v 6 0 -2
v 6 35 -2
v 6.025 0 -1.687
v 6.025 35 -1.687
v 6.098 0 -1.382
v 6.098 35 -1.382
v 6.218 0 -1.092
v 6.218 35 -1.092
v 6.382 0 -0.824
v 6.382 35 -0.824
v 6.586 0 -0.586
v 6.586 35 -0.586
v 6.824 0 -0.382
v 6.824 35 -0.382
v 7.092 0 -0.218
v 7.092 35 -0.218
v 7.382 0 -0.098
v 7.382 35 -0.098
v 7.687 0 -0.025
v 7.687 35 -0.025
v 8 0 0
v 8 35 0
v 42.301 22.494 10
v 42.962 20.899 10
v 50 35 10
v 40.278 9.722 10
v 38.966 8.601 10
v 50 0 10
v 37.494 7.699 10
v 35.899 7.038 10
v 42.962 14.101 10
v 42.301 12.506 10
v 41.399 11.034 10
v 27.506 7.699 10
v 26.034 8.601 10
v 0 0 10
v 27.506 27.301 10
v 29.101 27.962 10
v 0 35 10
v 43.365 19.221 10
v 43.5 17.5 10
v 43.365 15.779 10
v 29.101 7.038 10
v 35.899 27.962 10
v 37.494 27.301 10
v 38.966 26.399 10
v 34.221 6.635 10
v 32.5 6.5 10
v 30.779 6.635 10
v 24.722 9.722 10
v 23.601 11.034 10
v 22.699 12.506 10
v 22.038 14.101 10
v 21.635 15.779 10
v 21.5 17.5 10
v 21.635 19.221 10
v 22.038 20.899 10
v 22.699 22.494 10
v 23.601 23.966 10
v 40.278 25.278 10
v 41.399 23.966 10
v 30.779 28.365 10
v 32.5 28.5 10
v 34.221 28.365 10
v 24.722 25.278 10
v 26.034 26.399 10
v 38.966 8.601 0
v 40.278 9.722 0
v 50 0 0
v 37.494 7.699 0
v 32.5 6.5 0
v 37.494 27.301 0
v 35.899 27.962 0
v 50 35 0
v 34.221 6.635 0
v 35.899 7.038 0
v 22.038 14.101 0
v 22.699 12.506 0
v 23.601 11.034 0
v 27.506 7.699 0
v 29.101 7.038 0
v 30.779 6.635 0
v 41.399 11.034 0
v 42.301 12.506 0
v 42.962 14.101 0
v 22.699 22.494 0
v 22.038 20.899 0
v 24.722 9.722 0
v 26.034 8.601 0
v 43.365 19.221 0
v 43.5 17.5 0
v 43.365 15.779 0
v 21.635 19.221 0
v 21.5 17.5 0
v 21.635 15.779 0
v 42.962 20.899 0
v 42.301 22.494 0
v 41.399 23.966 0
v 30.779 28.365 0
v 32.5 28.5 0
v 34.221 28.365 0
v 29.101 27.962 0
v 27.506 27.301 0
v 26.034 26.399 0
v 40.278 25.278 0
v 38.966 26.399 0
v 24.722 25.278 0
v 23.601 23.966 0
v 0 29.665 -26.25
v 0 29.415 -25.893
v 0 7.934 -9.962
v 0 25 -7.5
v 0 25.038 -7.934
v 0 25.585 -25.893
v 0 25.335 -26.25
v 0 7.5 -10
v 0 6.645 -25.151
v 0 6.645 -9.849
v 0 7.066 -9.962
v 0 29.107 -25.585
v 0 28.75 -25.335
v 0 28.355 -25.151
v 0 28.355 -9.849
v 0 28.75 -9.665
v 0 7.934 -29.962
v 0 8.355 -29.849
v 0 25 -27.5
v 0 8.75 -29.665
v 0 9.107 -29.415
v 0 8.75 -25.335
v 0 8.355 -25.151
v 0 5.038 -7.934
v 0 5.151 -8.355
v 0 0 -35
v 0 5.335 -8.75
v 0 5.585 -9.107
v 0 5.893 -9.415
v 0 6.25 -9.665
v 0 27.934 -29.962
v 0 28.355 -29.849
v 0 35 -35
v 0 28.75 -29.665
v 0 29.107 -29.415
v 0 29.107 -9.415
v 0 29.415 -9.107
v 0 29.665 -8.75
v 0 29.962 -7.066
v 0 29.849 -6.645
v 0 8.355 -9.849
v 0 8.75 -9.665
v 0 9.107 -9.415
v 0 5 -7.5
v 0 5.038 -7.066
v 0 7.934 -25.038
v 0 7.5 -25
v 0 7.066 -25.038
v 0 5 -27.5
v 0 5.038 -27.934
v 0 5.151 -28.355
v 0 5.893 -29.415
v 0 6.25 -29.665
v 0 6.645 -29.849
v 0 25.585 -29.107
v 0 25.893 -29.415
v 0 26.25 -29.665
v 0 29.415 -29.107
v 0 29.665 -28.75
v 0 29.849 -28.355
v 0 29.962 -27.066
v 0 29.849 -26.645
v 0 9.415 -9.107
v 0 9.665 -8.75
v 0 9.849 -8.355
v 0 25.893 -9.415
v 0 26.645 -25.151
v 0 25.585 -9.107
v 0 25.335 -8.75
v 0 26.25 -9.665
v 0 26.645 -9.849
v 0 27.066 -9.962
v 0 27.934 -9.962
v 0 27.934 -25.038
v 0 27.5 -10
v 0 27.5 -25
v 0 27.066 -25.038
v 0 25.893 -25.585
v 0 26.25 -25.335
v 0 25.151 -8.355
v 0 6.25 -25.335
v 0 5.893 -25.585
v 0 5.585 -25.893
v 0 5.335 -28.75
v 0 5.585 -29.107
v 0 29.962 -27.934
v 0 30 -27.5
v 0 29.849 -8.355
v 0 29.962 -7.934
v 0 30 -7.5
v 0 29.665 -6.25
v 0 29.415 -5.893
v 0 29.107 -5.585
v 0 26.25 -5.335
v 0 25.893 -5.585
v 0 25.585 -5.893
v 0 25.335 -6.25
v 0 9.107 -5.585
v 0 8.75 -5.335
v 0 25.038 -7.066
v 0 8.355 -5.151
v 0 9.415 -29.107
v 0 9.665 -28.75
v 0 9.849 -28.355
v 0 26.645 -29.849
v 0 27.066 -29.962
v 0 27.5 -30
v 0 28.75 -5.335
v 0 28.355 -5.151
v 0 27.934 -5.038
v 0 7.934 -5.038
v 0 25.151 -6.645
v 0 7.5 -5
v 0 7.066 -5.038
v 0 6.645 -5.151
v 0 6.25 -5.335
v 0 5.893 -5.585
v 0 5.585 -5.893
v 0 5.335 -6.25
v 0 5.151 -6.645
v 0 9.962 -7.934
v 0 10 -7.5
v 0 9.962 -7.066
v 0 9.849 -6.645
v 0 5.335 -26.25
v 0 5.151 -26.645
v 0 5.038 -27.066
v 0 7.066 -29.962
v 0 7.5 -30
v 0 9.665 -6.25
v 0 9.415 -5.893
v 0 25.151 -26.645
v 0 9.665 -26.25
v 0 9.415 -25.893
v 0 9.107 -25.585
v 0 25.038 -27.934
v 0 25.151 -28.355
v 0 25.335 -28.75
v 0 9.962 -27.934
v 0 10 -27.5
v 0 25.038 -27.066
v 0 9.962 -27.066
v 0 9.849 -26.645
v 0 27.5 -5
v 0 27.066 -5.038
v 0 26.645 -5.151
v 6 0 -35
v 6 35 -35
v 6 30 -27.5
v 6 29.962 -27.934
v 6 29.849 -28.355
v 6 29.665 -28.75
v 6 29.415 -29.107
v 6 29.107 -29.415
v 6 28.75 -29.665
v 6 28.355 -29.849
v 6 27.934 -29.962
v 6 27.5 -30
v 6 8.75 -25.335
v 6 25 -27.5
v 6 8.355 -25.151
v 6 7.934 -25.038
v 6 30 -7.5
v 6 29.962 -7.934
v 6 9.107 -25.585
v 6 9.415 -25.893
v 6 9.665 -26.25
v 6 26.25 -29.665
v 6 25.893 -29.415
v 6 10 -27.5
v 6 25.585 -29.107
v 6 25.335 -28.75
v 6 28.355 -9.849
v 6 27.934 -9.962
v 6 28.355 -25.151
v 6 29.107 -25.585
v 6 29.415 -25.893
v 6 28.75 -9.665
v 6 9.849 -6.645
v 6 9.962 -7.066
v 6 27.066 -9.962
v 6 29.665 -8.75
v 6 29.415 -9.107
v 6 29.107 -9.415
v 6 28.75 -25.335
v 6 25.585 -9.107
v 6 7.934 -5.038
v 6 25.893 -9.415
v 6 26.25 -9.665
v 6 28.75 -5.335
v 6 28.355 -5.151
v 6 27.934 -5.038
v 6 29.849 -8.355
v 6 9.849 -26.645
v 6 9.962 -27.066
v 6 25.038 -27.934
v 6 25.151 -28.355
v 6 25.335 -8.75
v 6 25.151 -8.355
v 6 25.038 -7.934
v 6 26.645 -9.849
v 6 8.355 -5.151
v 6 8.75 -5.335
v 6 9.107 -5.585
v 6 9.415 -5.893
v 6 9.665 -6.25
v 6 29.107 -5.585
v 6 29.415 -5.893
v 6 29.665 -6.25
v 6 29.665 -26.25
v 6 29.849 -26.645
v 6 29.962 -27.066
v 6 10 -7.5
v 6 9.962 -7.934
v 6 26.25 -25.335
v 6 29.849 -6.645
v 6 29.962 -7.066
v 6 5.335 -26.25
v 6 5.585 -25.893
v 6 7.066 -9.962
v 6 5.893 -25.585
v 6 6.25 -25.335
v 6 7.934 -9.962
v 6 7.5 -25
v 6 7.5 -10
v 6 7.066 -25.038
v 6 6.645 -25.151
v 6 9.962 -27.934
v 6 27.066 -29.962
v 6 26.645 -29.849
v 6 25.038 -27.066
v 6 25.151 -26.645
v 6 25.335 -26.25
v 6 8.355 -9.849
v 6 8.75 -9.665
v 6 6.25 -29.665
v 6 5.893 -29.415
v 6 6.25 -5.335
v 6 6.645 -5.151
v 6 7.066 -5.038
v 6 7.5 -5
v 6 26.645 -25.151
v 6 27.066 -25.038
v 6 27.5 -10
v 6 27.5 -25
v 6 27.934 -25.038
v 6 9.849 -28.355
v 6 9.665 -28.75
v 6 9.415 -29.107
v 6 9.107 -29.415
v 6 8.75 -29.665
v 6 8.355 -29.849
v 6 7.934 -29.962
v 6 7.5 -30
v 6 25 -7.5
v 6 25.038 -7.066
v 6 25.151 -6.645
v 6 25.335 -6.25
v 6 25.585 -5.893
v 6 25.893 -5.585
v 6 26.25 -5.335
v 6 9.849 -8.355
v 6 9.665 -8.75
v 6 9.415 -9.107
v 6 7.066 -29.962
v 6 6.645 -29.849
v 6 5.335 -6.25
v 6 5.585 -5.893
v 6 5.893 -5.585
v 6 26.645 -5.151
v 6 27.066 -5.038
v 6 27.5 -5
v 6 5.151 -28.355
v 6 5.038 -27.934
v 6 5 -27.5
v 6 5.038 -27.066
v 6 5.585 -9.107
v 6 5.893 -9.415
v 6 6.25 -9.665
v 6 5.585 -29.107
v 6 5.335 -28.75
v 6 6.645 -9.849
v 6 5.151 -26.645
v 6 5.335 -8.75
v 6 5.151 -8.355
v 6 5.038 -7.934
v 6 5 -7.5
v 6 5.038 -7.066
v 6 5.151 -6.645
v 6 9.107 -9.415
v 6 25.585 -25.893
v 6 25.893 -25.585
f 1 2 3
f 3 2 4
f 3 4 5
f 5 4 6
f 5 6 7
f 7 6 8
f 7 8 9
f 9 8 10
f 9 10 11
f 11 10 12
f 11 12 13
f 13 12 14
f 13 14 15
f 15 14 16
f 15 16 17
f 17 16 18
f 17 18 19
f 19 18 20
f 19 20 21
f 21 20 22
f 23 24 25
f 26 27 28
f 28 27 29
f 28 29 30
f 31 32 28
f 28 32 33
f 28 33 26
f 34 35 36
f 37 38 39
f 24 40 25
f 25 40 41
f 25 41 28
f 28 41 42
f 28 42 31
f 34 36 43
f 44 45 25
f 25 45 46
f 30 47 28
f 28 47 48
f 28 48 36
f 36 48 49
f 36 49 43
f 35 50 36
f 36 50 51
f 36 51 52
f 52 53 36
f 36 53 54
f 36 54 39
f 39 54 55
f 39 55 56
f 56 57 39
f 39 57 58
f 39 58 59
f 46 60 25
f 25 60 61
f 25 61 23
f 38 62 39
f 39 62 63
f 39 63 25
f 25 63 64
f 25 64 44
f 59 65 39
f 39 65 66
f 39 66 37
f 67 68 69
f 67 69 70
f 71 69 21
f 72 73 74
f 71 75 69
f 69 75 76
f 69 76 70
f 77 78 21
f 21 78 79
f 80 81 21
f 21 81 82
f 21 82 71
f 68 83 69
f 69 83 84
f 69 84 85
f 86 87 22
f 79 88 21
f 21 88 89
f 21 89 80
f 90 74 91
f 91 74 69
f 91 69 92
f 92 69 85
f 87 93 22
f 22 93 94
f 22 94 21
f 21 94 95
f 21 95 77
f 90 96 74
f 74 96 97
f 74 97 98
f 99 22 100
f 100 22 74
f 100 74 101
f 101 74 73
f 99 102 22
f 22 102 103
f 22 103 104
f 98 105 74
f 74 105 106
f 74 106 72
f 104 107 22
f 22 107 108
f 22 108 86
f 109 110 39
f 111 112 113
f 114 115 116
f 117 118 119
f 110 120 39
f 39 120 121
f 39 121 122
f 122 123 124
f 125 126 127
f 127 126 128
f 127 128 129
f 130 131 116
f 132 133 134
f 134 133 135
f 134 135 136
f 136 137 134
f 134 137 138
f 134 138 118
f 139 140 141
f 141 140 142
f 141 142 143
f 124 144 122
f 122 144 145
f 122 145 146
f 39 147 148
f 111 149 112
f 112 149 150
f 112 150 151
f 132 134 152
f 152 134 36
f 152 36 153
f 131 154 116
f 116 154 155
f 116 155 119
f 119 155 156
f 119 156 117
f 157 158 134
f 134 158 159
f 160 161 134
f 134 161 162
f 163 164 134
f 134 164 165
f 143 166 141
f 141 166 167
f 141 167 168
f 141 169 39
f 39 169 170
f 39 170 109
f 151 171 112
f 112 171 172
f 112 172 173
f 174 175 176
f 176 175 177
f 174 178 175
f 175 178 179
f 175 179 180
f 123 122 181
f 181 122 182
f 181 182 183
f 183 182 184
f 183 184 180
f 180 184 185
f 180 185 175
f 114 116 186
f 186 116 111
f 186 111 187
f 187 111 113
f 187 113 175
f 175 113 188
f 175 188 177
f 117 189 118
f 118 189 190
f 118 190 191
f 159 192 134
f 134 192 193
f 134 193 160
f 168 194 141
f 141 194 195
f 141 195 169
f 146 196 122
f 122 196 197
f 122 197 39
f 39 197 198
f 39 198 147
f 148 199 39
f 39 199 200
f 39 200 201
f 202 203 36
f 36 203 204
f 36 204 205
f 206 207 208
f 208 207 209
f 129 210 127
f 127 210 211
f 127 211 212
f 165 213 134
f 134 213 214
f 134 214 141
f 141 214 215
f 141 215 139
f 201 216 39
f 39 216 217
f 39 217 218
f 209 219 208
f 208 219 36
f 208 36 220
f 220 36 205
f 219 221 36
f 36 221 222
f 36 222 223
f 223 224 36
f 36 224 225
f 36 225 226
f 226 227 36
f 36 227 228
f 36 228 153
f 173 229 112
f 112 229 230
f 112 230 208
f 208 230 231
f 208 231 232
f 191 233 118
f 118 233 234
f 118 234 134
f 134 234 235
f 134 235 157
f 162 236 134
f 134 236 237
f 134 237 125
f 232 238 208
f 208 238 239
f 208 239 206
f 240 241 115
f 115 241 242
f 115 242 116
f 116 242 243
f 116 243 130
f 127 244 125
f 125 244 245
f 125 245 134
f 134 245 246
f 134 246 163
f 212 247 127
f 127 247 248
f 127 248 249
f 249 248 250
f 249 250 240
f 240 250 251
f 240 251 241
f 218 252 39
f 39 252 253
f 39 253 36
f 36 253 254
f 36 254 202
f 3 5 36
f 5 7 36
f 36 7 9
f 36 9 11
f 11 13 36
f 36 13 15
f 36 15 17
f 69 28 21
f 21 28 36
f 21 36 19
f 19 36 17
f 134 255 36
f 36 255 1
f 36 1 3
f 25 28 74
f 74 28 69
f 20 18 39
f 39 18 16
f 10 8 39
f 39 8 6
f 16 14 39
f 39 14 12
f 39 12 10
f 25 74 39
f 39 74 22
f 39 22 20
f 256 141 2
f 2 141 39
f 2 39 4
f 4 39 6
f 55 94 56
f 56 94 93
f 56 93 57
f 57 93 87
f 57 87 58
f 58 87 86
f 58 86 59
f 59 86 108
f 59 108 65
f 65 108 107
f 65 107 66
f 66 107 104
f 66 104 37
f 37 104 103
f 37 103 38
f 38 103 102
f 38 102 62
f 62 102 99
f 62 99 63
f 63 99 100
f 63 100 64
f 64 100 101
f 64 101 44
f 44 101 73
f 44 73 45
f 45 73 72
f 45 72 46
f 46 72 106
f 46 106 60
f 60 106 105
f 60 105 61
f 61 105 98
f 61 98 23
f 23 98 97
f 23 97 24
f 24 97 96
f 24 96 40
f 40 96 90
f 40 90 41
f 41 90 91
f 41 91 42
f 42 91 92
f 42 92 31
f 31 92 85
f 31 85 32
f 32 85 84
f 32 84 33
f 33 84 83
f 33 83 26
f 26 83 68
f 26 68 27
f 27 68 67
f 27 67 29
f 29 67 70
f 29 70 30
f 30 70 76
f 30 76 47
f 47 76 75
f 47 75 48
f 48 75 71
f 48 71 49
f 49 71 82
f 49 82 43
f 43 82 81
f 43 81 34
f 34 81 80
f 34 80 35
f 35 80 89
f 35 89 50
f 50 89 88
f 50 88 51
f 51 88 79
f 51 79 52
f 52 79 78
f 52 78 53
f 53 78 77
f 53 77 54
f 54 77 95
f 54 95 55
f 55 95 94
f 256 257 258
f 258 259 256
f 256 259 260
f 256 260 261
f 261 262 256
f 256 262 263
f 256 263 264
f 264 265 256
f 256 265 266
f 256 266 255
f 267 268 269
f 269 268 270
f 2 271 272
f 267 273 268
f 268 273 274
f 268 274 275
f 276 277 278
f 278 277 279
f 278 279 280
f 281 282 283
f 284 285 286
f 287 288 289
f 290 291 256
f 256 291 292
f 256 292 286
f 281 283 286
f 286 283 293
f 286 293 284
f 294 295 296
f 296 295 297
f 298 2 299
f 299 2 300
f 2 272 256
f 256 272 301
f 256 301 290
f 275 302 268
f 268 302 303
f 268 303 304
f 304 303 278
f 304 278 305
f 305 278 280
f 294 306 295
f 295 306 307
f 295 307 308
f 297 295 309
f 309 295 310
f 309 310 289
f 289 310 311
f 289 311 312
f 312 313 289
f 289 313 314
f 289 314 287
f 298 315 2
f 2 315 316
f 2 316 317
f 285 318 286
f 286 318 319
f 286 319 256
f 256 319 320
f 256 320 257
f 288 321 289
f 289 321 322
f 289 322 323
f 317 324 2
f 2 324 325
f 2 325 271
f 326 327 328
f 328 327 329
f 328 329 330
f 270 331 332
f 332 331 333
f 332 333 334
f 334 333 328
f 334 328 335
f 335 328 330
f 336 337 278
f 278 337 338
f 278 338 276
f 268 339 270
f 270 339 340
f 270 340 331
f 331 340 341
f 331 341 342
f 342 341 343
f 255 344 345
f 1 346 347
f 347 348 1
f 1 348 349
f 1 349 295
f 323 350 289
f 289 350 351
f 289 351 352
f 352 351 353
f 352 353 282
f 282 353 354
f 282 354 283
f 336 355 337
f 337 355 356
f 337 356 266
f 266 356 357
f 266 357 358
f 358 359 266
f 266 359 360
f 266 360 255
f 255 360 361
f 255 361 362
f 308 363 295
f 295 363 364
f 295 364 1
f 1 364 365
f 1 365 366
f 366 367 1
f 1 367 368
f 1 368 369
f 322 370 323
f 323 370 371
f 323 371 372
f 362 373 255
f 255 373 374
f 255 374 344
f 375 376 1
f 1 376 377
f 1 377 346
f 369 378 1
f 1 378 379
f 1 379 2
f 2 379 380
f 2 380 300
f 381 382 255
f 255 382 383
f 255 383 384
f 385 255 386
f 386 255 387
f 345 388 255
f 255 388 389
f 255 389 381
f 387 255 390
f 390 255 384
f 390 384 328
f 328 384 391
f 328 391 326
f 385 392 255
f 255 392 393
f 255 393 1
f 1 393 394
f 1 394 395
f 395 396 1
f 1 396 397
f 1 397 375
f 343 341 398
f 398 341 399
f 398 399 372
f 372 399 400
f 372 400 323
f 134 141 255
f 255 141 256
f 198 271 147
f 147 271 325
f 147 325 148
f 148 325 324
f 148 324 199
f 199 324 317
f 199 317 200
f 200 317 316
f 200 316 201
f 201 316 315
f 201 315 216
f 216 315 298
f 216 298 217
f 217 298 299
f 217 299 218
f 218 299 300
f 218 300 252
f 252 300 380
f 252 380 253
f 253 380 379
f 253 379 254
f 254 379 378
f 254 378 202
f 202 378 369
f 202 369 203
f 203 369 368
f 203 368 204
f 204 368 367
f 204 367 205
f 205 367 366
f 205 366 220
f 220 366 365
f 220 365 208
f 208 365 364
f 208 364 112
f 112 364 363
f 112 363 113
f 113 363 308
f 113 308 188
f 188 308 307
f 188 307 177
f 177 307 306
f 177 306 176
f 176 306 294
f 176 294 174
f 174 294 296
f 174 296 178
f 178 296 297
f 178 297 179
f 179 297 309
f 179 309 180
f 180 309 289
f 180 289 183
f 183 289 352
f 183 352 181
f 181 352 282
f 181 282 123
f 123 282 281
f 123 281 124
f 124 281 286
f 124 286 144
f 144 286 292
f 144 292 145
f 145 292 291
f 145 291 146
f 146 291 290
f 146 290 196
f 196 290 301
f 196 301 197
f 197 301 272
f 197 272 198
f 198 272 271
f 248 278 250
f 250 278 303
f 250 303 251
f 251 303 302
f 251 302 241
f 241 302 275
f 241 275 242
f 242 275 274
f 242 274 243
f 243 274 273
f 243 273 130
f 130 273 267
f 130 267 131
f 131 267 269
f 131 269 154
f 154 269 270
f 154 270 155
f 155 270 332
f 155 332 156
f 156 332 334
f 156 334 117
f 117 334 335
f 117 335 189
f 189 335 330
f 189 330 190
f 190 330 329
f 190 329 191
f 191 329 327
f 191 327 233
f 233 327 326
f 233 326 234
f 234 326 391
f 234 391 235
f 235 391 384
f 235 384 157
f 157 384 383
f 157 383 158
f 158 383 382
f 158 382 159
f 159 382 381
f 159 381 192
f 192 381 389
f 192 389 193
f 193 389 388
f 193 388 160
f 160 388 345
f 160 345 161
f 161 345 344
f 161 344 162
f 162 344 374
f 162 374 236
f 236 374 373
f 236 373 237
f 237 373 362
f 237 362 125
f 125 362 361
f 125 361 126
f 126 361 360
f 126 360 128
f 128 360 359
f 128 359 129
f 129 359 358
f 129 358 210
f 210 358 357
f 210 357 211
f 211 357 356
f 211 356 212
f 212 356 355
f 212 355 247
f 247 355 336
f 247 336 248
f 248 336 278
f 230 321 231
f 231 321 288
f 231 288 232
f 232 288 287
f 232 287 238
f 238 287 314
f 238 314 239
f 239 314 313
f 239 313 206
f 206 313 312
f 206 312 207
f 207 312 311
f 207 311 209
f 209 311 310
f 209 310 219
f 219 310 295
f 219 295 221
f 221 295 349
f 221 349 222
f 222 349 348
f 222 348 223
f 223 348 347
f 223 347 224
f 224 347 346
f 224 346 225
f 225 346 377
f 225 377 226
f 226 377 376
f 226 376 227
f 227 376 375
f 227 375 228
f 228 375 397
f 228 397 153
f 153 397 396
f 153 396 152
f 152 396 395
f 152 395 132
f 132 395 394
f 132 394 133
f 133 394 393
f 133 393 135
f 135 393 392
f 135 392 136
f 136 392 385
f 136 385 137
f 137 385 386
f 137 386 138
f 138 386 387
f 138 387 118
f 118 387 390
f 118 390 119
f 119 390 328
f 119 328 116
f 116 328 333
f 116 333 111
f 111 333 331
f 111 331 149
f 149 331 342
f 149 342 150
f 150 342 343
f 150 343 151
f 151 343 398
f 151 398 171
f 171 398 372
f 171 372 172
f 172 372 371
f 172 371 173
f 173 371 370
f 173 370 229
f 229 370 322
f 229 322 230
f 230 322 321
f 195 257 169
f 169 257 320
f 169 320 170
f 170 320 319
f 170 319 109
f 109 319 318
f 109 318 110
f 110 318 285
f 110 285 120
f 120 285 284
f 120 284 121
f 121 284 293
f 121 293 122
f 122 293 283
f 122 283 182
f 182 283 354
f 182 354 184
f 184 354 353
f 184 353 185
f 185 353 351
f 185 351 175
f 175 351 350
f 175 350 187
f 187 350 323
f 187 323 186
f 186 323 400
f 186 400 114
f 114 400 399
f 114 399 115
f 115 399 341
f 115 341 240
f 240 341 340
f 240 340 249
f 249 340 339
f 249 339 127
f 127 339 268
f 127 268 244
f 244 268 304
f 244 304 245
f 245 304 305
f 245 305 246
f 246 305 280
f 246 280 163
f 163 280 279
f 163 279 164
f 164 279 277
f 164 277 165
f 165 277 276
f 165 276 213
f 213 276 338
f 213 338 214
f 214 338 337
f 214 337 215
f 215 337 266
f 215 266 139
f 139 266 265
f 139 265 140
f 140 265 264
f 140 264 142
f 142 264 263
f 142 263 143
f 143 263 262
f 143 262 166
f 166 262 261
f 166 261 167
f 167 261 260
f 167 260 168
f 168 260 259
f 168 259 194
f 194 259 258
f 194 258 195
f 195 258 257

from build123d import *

# Parameters (mm, degrees)
SKETCH1_W           = 50
SKETCH1_H           = 35
SKETCH1_R           = 11
BOSS_EXTRUDE3_DEPTH = 10
BOSS_EXTRUDE6_DEPTH = 35
SKETCH9_R           = 2.5
CUT_EXTRUDE1_DEPTH  = 10
FILLET1_R           = 2


with BuildPart() as part:
    # Sketch1 → Boss-Extrude3 (new body)
    with BuildSketch(Plane.XY):
        with Locations((25, 17.5)):
            Rectangle(SKETCH1_W, SKETCH1_H)
        with Locations((32.5, 17.5)):
            Circle(SKETCH1_R, mode=Mode.SUBTRACT)
    extrude(amount=BOSS_EXTRUDE3_DEPTH)

    # Sketch8 → Boss-Extrude6 (add)
    with BuildSketch(Plane(origin=(0, 0, 0), x_dir=(-1, 0, 0), z_dir=(0, 0, -1))):
        Polygon((-6, 10.000000197), (-6, 0), (0, 0), (0, 10.000000197), (0, 25), (0, 35), (-6, 35), (-6, 25), align=None)
    extrude(amount=BOSS_EXTRUDE6_DEPTH)

    # Sketch9 → Cut-Extrude1 (cut)
    with BuildSketch(Plane(origin=(6, 0, 0), x_dir=(0, 0, -1), z_dir=(1, 0, 0))):
        with Locations((7.5, 27.5)):
            Circle(SKETCH9_R)
        with Locations((27.5, 27.5)):
            Circle(SKETCH9_R)
        with Locations((7.5, 7.5)):
            Circle(SKETCH9_R)
        with Locations((27.5, 7.5)):
            Circle(SKETCH9_R)
    extrude(amount=-CUT_EXTRUDE1_DEPTH, mode=Mode.SUBTRACT)

    # Fillet1
    fillet1_edges = [part.edges().sort_by_distance(p)[0] for p in [
        (6, 17.5, 0),
    ]]
    fillet(fillet1_edges, radius=FILLET1_R)


solid = part.part
